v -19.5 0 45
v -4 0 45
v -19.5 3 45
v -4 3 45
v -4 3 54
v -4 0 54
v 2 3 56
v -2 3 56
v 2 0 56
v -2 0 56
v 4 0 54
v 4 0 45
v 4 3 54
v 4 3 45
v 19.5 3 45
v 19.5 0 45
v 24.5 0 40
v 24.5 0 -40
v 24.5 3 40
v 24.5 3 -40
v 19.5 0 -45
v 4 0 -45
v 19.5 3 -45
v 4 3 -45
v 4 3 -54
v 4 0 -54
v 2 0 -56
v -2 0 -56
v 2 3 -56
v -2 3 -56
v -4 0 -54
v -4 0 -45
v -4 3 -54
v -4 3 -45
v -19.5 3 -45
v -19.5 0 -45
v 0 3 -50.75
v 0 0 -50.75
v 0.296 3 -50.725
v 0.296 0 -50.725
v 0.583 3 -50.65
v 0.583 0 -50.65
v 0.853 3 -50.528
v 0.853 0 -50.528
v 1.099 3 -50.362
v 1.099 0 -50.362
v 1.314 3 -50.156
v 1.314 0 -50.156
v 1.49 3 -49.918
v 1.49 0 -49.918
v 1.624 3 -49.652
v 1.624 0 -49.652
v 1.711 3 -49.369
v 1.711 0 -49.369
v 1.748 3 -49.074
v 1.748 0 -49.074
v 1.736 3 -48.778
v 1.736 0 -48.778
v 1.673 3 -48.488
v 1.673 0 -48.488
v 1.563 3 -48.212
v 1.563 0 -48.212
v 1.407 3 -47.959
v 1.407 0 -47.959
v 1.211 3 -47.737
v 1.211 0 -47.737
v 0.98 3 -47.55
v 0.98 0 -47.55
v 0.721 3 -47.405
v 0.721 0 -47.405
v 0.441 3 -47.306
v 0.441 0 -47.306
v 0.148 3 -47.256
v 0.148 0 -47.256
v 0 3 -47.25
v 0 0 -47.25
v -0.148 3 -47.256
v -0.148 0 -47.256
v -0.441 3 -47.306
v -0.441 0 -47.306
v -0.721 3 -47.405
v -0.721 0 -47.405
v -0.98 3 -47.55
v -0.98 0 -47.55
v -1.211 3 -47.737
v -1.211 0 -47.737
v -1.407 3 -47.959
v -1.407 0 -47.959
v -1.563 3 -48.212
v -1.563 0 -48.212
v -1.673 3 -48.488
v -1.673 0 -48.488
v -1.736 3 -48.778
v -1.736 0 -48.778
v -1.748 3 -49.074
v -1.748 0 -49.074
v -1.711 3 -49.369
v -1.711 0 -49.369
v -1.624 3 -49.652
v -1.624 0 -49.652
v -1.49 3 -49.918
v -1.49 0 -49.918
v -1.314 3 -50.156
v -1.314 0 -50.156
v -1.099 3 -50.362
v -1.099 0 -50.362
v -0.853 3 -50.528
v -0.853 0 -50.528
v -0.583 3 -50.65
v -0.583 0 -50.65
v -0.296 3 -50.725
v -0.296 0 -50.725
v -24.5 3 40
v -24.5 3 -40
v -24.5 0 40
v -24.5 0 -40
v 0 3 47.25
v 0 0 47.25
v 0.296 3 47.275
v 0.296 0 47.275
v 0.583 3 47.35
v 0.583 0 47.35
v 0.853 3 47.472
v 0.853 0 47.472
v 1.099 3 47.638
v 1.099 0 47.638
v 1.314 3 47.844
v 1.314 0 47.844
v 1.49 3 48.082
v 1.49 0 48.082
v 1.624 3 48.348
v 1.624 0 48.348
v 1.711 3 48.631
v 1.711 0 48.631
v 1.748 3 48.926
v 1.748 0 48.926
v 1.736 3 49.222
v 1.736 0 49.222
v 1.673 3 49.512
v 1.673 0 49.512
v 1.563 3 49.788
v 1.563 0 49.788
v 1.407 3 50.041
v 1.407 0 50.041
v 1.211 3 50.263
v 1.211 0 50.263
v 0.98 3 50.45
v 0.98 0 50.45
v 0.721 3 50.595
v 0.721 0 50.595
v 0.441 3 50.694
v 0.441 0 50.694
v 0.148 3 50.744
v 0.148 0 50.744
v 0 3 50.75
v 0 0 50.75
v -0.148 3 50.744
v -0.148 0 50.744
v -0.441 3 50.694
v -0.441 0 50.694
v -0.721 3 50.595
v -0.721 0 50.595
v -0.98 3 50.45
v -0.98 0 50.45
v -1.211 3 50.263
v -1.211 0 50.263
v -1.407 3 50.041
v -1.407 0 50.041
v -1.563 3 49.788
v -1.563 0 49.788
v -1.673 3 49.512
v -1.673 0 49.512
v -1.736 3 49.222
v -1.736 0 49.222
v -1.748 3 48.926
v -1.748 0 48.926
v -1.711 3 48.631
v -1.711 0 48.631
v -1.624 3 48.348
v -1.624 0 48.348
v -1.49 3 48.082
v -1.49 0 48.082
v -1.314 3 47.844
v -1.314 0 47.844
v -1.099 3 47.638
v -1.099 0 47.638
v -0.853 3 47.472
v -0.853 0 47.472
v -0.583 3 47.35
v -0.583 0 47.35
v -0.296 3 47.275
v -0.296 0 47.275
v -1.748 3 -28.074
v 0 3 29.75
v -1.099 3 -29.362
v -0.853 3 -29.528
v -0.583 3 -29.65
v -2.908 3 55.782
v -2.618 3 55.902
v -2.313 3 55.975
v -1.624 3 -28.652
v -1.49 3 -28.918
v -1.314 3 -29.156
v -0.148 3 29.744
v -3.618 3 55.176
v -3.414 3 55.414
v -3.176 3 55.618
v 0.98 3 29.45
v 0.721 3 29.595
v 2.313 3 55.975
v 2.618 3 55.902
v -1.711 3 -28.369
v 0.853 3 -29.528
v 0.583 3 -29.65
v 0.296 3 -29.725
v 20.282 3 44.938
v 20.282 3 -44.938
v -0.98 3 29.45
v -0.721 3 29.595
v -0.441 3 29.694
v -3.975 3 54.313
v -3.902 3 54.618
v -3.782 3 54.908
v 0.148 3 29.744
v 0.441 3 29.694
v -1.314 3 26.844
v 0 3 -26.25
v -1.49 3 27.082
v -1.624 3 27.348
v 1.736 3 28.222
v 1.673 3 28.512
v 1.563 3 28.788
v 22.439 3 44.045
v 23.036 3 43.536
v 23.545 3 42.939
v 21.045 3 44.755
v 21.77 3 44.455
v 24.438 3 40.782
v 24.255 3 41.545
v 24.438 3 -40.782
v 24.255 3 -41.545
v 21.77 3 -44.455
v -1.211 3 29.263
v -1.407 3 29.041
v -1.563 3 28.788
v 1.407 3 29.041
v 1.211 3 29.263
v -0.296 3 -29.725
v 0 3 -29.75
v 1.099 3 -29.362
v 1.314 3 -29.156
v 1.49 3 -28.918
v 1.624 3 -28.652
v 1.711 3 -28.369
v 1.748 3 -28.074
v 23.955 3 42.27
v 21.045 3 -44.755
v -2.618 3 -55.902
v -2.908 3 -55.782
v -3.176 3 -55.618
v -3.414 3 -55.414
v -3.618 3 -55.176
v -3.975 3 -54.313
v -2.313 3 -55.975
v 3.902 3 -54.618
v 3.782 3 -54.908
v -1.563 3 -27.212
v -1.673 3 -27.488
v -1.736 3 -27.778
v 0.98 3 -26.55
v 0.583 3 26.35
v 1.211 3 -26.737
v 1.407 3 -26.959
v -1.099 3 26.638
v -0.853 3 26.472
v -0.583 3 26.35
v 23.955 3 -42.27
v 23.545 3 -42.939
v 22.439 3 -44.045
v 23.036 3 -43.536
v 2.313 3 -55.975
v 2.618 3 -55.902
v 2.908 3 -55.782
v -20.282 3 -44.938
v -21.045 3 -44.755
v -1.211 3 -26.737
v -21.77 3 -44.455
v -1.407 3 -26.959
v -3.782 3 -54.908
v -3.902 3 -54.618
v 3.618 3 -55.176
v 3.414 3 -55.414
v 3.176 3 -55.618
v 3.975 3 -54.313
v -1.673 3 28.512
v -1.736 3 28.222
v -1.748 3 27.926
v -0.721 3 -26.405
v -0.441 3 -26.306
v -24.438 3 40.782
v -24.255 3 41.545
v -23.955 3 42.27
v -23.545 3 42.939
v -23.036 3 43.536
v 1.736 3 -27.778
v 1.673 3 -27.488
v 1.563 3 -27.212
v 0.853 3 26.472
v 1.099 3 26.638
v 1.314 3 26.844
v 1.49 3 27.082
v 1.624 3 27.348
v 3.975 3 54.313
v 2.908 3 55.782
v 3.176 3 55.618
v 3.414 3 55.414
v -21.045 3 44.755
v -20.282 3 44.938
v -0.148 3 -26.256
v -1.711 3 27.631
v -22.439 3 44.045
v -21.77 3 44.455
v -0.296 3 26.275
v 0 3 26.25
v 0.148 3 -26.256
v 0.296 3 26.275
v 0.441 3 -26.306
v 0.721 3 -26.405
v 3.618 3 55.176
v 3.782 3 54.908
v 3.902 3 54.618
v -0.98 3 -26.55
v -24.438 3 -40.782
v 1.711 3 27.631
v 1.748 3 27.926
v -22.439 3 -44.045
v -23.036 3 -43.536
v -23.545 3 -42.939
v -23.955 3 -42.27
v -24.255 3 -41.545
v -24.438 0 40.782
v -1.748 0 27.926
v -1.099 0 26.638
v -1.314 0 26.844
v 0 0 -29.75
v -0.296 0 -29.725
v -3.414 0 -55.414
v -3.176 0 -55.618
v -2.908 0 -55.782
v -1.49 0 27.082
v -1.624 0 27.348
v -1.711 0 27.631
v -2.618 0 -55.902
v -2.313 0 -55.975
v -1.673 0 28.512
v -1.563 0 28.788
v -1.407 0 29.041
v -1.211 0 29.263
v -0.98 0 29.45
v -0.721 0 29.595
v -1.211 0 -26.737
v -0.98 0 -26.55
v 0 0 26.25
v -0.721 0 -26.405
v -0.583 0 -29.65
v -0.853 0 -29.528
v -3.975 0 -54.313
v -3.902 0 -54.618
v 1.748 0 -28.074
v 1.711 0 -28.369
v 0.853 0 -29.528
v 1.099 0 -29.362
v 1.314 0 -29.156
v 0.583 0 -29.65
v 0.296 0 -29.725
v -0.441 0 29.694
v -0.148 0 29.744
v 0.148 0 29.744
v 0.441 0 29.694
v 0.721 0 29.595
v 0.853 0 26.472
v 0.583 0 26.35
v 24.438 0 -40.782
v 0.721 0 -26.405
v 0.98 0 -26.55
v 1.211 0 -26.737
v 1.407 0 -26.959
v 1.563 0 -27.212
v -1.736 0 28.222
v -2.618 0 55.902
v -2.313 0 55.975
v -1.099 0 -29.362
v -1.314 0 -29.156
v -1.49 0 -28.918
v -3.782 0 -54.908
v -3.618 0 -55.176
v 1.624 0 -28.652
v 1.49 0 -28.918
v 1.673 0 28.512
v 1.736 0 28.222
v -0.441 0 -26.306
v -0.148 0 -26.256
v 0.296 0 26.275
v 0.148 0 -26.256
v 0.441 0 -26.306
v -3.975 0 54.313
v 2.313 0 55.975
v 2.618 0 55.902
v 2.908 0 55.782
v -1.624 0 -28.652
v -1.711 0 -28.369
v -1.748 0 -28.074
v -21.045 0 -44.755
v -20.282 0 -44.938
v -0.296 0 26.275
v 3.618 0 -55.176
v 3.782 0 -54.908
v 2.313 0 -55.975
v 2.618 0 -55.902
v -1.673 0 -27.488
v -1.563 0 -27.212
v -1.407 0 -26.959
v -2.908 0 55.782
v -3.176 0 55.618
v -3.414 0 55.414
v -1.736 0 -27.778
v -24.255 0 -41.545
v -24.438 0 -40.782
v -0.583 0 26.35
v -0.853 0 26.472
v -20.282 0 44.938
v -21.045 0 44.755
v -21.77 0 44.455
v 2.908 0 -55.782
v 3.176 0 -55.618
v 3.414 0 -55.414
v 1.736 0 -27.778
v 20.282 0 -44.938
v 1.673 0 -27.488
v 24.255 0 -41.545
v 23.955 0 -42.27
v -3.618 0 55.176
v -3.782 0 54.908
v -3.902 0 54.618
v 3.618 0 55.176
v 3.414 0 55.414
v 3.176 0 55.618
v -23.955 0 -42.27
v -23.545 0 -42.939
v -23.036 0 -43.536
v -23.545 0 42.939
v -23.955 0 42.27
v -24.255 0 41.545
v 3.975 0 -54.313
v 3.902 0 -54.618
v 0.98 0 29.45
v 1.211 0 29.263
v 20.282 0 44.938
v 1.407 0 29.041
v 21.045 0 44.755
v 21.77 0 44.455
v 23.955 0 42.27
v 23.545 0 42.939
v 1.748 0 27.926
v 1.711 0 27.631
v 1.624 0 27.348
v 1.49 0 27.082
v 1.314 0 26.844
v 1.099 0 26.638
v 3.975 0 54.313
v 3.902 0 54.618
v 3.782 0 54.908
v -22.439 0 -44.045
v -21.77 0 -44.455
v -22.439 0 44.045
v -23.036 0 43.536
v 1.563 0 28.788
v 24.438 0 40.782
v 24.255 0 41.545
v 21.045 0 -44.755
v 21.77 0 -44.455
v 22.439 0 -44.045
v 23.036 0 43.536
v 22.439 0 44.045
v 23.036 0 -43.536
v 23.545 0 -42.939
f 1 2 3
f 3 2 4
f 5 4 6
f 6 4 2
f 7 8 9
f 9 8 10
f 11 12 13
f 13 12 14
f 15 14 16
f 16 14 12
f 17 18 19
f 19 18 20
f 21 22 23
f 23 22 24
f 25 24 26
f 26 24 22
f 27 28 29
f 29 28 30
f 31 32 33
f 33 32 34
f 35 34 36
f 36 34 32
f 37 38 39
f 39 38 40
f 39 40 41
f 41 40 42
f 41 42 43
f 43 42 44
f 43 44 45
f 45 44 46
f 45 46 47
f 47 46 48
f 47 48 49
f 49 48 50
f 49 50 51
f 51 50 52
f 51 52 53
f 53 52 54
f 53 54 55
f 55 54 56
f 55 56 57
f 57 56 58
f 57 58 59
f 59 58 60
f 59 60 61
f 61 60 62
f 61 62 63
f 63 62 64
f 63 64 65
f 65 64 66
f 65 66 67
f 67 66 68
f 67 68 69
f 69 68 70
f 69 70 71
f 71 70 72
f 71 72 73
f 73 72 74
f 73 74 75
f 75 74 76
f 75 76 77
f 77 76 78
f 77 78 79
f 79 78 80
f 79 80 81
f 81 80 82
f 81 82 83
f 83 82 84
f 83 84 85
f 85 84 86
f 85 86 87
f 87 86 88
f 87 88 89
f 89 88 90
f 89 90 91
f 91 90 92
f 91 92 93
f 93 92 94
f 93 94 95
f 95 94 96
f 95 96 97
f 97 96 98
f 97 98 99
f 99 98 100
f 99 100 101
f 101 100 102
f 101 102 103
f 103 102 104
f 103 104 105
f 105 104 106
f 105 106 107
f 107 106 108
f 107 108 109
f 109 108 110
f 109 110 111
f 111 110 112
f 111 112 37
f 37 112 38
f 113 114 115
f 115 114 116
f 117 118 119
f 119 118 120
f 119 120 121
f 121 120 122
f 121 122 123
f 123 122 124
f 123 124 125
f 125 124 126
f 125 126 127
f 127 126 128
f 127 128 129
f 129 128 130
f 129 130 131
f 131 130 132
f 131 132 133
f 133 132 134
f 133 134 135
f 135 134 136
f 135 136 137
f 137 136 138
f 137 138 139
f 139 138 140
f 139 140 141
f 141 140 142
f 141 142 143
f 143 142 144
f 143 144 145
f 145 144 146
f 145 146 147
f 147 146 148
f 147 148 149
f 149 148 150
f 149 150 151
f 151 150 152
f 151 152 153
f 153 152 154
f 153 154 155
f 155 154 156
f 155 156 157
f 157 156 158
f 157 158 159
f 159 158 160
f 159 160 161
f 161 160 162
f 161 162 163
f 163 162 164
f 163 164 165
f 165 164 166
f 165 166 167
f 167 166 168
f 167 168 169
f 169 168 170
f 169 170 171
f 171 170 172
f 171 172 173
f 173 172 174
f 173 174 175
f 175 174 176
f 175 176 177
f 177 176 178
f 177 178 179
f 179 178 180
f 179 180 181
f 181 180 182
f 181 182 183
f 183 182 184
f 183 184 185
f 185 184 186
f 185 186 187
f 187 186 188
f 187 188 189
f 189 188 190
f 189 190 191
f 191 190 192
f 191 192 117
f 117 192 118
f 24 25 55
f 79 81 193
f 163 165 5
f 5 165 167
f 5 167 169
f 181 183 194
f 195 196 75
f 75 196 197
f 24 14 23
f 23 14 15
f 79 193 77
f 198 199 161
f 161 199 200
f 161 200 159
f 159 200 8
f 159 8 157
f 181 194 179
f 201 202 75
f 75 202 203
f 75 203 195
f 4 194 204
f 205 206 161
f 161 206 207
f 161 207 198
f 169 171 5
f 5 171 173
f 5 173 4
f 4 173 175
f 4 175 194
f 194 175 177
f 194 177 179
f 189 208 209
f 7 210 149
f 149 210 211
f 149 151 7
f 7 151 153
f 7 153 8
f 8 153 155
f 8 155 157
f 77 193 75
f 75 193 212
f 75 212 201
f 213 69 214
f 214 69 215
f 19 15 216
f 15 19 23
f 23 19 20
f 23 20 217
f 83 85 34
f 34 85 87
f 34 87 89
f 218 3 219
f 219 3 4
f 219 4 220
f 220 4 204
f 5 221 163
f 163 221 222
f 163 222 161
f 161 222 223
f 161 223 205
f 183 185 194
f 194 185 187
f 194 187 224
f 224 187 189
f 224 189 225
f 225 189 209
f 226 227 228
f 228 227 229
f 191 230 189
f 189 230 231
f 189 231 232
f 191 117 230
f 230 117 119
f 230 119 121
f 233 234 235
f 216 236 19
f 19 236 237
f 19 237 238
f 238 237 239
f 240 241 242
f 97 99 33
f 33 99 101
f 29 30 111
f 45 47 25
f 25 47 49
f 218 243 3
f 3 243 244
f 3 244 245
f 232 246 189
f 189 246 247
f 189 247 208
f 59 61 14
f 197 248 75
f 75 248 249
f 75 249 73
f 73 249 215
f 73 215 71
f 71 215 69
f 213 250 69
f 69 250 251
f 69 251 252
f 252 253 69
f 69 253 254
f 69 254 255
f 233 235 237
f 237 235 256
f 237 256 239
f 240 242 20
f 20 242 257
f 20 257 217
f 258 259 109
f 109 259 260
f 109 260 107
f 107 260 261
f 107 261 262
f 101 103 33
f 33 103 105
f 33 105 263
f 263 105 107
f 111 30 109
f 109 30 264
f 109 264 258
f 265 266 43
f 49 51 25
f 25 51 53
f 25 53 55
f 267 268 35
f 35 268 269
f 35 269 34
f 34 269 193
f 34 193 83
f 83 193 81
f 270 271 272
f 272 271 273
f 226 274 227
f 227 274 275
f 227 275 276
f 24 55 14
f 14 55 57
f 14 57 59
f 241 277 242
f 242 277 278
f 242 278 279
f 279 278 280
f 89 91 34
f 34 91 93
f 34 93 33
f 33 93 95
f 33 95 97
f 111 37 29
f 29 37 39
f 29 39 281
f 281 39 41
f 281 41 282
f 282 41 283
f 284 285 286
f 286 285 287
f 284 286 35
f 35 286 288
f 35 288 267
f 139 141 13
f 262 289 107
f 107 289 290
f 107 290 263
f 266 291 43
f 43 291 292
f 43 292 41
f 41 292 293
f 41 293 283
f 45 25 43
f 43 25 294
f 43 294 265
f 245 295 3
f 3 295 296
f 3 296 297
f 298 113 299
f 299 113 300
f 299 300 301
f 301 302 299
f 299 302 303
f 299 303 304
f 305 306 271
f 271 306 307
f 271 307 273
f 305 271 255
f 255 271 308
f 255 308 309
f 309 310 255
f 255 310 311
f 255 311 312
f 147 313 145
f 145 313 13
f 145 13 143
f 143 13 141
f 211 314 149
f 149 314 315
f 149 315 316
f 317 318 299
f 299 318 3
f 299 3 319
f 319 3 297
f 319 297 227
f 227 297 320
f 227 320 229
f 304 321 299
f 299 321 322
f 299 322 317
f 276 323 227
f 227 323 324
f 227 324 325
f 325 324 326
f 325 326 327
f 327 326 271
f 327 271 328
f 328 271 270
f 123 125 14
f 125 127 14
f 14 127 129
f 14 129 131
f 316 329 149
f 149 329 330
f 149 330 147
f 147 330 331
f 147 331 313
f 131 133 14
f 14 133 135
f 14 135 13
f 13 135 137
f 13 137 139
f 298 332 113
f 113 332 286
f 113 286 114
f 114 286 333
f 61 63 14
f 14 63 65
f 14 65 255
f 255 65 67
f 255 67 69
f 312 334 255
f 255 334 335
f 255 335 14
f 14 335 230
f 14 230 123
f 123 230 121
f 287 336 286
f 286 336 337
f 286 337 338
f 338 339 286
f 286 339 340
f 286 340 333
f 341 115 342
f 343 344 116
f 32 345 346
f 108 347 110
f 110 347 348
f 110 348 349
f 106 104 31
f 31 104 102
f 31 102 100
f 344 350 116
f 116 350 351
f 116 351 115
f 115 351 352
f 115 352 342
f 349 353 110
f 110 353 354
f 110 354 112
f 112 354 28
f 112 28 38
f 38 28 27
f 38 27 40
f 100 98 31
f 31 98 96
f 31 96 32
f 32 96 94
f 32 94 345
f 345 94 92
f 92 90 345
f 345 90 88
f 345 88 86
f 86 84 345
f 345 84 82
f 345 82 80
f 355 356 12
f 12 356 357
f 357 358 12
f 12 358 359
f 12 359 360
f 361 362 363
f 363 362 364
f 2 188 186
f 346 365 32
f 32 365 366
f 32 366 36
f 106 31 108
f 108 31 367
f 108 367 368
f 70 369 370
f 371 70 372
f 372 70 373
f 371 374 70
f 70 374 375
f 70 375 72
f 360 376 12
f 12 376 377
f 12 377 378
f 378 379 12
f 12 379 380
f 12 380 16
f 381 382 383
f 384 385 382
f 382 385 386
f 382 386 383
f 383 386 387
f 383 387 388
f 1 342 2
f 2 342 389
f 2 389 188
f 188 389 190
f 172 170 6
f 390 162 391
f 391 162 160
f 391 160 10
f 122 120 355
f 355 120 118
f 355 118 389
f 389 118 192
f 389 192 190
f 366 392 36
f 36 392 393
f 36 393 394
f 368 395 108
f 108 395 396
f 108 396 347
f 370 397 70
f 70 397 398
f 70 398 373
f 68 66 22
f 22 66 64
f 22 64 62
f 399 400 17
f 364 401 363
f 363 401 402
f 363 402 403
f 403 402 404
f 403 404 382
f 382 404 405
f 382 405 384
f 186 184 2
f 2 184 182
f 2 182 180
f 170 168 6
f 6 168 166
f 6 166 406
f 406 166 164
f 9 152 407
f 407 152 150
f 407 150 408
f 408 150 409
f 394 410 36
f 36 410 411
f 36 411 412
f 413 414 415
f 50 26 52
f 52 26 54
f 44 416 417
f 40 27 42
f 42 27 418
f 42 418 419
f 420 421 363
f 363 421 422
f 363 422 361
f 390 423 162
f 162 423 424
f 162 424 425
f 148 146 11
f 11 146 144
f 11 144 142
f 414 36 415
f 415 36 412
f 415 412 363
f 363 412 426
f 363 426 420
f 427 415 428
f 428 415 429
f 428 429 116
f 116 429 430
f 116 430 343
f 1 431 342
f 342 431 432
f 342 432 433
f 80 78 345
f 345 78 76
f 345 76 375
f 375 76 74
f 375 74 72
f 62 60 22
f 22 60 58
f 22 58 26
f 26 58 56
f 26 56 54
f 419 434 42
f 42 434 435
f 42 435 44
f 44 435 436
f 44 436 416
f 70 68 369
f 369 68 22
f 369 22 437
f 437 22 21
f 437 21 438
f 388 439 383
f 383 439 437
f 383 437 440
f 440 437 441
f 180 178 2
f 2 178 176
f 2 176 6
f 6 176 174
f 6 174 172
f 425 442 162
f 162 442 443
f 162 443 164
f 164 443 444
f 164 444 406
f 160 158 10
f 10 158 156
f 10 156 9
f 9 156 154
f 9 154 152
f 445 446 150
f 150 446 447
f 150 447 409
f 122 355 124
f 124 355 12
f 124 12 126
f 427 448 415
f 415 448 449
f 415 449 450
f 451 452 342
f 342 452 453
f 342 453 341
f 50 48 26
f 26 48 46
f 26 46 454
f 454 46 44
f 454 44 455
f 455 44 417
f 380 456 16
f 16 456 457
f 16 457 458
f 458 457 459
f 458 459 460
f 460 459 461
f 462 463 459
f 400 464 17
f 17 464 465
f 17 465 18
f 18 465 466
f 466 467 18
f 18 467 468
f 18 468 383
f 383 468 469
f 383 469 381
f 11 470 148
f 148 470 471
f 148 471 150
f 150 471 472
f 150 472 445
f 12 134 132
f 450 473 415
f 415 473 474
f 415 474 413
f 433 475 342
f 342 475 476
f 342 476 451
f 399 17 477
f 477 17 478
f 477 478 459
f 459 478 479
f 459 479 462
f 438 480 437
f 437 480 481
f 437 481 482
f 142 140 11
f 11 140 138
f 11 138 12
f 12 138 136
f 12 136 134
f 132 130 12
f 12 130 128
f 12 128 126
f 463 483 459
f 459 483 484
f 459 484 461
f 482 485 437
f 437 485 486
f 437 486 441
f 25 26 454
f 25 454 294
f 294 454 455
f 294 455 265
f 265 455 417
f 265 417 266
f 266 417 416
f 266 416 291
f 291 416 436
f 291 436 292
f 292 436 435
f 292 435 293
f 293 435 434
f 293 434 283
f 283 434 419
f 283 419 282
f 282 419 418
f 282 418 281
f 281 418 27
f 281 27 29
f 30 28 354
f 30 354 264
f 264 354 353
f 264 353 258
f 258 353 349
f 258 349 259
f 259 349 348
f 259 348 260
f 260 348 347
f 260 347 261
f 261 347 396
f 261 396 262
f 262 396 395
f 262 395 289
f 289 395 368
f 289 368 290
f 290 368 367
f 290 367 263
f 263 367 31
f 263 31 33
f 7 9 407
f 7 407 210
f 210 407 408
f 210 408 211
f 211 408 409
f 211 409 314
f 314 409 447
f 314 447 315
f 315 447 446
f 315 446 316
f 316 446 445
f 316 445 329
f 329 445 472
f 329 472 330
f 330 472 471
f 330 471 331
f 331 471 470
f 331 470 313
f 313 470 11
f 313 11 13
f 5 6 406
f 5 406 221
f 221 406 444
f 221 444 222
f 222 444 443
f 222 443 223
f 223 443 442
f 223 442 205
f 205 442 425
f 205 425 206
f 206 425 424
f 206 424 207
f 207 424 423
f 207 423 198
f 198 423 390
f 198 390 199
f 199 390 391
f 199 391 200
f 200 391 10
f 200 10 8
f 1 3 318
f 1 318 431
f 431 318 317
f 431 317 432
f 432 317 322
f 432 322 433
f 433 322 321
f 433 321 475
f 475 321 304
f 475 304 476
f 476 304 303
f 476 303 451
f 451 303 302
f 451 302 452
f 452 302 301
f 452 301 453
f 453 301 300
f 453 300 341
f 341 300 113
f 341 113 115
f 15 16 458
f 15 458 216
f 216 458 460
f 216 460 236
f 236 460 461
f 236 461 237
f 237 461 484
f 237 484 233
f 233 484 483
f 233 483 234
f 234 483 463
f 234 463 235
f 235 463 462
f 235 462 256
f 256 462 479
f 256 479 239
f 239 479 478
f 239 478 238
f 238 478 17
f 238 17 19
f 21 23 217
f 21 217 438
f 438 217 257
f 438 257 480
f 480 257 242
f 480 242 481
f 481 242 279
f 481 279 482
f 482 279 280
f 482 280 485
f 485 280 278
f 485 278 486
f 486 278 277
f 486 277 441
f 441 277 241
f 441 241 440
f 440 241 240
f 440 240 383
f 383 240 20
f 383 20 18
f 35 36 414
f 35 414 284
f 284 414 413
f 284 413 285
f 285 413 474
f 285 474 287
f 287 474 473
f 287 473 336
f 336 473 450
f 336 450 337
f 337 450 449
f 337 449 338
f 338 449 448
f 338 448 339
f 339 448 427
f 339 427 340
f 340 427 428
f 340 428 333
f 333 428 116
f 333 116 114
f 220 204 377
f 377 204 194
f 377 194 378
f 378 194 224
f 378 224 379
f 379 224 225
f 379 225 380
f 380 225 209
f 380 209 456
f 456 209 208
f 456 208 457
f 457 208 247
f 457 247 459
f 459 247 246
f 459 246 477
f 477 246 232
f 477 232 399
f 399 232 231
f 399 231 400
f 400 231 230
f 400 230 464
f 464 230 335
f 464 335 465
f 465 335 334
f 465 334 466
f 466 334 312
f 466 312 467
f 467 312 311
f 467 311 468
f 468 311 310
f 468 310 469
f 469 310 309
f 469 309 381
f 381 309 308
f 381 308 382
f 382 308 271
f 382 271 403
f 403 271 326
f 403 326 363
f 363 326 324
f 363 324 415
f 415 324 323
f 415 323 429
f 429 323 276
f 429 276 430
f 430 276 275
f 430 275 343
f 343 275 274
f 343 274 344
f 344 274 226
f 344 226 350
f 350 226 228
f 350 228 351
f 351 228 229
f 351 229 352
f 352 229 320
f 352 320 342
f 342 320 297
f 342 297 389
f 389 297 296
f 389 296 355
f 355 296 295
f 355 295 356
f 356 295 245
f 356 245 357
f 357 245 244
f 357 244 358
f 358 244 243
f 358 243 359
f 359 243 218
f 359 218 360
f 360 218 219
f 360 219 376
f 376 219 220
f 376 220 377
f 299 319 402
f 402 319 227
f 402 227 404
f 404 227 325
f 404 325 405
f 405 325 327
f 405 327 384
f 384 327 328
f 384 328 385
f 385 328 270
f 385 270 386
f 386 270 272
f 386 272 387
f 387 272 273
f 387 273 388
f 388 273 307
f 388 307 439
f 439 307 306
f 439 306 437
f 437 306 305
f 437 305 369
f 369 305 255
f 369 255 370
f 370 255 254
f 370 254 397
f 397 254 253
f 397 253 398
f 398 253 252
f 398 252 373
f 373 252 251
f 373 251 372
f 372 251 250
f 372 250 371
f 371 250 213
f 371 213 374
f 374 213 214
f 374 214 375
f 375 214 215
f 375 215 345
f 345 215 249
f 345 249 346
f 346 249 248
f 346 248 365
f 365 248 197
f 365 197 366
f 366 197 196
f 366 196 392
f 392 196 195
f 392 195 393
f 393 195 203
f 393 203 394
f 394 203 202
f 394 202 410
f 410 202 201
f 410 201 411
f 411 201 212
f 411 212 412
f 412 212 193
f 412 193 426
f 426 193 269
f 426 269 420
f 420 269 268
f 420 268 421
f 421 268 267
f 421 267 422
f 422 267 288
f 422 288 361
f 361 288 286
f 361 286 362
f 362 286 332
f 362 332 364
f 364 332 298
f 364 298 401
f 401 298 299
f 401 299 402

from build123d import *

# Parameters (mm, degrees)
SKETCH_1_W          = 49
SKETCH_1_H          = 90
SKETCH_1_R          = 1.75
EXTRUDE_1_DEPTH     = 3
FILLET_1_R          = 2
FILLET_2_R          = 5
CUT_EXTRUDE_1_DEPTH = 10


with BuildPart() as part:
    # 草图1 → 凸台-拉伸1 (new body)
    with BuildSketch(Plane(origin=(0, 0, 0), x_dir=(1, 0, 0), z_dir=(0, 1, 0))):
        Rectangle(SKETCH_1_W, SKETCH_1_H)
        Polygon((-4, 56), (-4, 45), (4, 45), (4, 56), (0, 56), align=None)
        with Locations((0, 49)):
            Circle(SKETCH_1_R, mode=Mode.SUBTRACT)
        Polygon((4, -45), (-4, -45), (-4, -56), (0, -56), (4, -56), align=None)
        with Locations((0, -49)):
            Circle(SKETCH_1_R, mode=Mode.SUBTRACT)
    extrude(amount=EXTRUDE_1_DEPTH)

    # 圆角1
    fillet_1_edges = [part.edges().sort_by_distance(p)[0] for p in [
        (-4, 1.5, -56),
        (4, 1.5, -56),
        (4, 1.5, 56),
        (-4, 1.5, 56),
    ]]
    fillet(fillet_1_edges, radius=FILLET_1_R)

    # 圆角2
    fillet_2_edges = [part.edges().sort_by_distance(p)[0] for p in [
        (-24.5, 1.5, 45),
        (-24.5, 1.5, -45),
        (24.5, 1.5, -45),
        (24.5, 1.5, 45),
    ]]
    fillet(fillet_2_edges, radius=FILLET_2_R)

    # 草图2 → 切除-拉伸1 (cut)
    with BuildSketch(Plane.XZ):
        with BuildLine():
            ThreePointArc((1.75, -28), (1.237436867, -26.762563133), (0, -26.25))
            Line((0, -26.25), (0, -28))
            Line((0, -28), (0, -29.75))
            ThreePointArc((0, -29.75), (1.237436867, -29.237436867), (1.75, -28))
        make_face()
        with BuildLine():
            Line((0, -28), (0, -26.25))
            ThreePointArc((0, -26.25), (-1.75, -28), (0, -29.75))
            Line((0, -29.75), (0, -28))
        make_face()
        with BuildLine():
            ThreePointArc((1.75, 28), (1.237436867, 29.237436867), (0, 29.75))
            Line((0, 29.75), (0, 28))
            Line((0, 28), (0, 26.25))
            ThreePointArc((0, 26.25), (1.237436867, 26.762563133), (1.75, 28))
        make_face()
        with BuildLine():
            Line((0, 28), (0, 29.75))
            ThreePointArc((0, 29.75), (-1.75, 28), (0, 26.25))
            Line((0, 26.25), (0, 28))
        make_face()
    extrude(amount=-CUT_EXTRUDE_1_DEPTH, mode=Mode.SUBTRACT)


solid = part.part
